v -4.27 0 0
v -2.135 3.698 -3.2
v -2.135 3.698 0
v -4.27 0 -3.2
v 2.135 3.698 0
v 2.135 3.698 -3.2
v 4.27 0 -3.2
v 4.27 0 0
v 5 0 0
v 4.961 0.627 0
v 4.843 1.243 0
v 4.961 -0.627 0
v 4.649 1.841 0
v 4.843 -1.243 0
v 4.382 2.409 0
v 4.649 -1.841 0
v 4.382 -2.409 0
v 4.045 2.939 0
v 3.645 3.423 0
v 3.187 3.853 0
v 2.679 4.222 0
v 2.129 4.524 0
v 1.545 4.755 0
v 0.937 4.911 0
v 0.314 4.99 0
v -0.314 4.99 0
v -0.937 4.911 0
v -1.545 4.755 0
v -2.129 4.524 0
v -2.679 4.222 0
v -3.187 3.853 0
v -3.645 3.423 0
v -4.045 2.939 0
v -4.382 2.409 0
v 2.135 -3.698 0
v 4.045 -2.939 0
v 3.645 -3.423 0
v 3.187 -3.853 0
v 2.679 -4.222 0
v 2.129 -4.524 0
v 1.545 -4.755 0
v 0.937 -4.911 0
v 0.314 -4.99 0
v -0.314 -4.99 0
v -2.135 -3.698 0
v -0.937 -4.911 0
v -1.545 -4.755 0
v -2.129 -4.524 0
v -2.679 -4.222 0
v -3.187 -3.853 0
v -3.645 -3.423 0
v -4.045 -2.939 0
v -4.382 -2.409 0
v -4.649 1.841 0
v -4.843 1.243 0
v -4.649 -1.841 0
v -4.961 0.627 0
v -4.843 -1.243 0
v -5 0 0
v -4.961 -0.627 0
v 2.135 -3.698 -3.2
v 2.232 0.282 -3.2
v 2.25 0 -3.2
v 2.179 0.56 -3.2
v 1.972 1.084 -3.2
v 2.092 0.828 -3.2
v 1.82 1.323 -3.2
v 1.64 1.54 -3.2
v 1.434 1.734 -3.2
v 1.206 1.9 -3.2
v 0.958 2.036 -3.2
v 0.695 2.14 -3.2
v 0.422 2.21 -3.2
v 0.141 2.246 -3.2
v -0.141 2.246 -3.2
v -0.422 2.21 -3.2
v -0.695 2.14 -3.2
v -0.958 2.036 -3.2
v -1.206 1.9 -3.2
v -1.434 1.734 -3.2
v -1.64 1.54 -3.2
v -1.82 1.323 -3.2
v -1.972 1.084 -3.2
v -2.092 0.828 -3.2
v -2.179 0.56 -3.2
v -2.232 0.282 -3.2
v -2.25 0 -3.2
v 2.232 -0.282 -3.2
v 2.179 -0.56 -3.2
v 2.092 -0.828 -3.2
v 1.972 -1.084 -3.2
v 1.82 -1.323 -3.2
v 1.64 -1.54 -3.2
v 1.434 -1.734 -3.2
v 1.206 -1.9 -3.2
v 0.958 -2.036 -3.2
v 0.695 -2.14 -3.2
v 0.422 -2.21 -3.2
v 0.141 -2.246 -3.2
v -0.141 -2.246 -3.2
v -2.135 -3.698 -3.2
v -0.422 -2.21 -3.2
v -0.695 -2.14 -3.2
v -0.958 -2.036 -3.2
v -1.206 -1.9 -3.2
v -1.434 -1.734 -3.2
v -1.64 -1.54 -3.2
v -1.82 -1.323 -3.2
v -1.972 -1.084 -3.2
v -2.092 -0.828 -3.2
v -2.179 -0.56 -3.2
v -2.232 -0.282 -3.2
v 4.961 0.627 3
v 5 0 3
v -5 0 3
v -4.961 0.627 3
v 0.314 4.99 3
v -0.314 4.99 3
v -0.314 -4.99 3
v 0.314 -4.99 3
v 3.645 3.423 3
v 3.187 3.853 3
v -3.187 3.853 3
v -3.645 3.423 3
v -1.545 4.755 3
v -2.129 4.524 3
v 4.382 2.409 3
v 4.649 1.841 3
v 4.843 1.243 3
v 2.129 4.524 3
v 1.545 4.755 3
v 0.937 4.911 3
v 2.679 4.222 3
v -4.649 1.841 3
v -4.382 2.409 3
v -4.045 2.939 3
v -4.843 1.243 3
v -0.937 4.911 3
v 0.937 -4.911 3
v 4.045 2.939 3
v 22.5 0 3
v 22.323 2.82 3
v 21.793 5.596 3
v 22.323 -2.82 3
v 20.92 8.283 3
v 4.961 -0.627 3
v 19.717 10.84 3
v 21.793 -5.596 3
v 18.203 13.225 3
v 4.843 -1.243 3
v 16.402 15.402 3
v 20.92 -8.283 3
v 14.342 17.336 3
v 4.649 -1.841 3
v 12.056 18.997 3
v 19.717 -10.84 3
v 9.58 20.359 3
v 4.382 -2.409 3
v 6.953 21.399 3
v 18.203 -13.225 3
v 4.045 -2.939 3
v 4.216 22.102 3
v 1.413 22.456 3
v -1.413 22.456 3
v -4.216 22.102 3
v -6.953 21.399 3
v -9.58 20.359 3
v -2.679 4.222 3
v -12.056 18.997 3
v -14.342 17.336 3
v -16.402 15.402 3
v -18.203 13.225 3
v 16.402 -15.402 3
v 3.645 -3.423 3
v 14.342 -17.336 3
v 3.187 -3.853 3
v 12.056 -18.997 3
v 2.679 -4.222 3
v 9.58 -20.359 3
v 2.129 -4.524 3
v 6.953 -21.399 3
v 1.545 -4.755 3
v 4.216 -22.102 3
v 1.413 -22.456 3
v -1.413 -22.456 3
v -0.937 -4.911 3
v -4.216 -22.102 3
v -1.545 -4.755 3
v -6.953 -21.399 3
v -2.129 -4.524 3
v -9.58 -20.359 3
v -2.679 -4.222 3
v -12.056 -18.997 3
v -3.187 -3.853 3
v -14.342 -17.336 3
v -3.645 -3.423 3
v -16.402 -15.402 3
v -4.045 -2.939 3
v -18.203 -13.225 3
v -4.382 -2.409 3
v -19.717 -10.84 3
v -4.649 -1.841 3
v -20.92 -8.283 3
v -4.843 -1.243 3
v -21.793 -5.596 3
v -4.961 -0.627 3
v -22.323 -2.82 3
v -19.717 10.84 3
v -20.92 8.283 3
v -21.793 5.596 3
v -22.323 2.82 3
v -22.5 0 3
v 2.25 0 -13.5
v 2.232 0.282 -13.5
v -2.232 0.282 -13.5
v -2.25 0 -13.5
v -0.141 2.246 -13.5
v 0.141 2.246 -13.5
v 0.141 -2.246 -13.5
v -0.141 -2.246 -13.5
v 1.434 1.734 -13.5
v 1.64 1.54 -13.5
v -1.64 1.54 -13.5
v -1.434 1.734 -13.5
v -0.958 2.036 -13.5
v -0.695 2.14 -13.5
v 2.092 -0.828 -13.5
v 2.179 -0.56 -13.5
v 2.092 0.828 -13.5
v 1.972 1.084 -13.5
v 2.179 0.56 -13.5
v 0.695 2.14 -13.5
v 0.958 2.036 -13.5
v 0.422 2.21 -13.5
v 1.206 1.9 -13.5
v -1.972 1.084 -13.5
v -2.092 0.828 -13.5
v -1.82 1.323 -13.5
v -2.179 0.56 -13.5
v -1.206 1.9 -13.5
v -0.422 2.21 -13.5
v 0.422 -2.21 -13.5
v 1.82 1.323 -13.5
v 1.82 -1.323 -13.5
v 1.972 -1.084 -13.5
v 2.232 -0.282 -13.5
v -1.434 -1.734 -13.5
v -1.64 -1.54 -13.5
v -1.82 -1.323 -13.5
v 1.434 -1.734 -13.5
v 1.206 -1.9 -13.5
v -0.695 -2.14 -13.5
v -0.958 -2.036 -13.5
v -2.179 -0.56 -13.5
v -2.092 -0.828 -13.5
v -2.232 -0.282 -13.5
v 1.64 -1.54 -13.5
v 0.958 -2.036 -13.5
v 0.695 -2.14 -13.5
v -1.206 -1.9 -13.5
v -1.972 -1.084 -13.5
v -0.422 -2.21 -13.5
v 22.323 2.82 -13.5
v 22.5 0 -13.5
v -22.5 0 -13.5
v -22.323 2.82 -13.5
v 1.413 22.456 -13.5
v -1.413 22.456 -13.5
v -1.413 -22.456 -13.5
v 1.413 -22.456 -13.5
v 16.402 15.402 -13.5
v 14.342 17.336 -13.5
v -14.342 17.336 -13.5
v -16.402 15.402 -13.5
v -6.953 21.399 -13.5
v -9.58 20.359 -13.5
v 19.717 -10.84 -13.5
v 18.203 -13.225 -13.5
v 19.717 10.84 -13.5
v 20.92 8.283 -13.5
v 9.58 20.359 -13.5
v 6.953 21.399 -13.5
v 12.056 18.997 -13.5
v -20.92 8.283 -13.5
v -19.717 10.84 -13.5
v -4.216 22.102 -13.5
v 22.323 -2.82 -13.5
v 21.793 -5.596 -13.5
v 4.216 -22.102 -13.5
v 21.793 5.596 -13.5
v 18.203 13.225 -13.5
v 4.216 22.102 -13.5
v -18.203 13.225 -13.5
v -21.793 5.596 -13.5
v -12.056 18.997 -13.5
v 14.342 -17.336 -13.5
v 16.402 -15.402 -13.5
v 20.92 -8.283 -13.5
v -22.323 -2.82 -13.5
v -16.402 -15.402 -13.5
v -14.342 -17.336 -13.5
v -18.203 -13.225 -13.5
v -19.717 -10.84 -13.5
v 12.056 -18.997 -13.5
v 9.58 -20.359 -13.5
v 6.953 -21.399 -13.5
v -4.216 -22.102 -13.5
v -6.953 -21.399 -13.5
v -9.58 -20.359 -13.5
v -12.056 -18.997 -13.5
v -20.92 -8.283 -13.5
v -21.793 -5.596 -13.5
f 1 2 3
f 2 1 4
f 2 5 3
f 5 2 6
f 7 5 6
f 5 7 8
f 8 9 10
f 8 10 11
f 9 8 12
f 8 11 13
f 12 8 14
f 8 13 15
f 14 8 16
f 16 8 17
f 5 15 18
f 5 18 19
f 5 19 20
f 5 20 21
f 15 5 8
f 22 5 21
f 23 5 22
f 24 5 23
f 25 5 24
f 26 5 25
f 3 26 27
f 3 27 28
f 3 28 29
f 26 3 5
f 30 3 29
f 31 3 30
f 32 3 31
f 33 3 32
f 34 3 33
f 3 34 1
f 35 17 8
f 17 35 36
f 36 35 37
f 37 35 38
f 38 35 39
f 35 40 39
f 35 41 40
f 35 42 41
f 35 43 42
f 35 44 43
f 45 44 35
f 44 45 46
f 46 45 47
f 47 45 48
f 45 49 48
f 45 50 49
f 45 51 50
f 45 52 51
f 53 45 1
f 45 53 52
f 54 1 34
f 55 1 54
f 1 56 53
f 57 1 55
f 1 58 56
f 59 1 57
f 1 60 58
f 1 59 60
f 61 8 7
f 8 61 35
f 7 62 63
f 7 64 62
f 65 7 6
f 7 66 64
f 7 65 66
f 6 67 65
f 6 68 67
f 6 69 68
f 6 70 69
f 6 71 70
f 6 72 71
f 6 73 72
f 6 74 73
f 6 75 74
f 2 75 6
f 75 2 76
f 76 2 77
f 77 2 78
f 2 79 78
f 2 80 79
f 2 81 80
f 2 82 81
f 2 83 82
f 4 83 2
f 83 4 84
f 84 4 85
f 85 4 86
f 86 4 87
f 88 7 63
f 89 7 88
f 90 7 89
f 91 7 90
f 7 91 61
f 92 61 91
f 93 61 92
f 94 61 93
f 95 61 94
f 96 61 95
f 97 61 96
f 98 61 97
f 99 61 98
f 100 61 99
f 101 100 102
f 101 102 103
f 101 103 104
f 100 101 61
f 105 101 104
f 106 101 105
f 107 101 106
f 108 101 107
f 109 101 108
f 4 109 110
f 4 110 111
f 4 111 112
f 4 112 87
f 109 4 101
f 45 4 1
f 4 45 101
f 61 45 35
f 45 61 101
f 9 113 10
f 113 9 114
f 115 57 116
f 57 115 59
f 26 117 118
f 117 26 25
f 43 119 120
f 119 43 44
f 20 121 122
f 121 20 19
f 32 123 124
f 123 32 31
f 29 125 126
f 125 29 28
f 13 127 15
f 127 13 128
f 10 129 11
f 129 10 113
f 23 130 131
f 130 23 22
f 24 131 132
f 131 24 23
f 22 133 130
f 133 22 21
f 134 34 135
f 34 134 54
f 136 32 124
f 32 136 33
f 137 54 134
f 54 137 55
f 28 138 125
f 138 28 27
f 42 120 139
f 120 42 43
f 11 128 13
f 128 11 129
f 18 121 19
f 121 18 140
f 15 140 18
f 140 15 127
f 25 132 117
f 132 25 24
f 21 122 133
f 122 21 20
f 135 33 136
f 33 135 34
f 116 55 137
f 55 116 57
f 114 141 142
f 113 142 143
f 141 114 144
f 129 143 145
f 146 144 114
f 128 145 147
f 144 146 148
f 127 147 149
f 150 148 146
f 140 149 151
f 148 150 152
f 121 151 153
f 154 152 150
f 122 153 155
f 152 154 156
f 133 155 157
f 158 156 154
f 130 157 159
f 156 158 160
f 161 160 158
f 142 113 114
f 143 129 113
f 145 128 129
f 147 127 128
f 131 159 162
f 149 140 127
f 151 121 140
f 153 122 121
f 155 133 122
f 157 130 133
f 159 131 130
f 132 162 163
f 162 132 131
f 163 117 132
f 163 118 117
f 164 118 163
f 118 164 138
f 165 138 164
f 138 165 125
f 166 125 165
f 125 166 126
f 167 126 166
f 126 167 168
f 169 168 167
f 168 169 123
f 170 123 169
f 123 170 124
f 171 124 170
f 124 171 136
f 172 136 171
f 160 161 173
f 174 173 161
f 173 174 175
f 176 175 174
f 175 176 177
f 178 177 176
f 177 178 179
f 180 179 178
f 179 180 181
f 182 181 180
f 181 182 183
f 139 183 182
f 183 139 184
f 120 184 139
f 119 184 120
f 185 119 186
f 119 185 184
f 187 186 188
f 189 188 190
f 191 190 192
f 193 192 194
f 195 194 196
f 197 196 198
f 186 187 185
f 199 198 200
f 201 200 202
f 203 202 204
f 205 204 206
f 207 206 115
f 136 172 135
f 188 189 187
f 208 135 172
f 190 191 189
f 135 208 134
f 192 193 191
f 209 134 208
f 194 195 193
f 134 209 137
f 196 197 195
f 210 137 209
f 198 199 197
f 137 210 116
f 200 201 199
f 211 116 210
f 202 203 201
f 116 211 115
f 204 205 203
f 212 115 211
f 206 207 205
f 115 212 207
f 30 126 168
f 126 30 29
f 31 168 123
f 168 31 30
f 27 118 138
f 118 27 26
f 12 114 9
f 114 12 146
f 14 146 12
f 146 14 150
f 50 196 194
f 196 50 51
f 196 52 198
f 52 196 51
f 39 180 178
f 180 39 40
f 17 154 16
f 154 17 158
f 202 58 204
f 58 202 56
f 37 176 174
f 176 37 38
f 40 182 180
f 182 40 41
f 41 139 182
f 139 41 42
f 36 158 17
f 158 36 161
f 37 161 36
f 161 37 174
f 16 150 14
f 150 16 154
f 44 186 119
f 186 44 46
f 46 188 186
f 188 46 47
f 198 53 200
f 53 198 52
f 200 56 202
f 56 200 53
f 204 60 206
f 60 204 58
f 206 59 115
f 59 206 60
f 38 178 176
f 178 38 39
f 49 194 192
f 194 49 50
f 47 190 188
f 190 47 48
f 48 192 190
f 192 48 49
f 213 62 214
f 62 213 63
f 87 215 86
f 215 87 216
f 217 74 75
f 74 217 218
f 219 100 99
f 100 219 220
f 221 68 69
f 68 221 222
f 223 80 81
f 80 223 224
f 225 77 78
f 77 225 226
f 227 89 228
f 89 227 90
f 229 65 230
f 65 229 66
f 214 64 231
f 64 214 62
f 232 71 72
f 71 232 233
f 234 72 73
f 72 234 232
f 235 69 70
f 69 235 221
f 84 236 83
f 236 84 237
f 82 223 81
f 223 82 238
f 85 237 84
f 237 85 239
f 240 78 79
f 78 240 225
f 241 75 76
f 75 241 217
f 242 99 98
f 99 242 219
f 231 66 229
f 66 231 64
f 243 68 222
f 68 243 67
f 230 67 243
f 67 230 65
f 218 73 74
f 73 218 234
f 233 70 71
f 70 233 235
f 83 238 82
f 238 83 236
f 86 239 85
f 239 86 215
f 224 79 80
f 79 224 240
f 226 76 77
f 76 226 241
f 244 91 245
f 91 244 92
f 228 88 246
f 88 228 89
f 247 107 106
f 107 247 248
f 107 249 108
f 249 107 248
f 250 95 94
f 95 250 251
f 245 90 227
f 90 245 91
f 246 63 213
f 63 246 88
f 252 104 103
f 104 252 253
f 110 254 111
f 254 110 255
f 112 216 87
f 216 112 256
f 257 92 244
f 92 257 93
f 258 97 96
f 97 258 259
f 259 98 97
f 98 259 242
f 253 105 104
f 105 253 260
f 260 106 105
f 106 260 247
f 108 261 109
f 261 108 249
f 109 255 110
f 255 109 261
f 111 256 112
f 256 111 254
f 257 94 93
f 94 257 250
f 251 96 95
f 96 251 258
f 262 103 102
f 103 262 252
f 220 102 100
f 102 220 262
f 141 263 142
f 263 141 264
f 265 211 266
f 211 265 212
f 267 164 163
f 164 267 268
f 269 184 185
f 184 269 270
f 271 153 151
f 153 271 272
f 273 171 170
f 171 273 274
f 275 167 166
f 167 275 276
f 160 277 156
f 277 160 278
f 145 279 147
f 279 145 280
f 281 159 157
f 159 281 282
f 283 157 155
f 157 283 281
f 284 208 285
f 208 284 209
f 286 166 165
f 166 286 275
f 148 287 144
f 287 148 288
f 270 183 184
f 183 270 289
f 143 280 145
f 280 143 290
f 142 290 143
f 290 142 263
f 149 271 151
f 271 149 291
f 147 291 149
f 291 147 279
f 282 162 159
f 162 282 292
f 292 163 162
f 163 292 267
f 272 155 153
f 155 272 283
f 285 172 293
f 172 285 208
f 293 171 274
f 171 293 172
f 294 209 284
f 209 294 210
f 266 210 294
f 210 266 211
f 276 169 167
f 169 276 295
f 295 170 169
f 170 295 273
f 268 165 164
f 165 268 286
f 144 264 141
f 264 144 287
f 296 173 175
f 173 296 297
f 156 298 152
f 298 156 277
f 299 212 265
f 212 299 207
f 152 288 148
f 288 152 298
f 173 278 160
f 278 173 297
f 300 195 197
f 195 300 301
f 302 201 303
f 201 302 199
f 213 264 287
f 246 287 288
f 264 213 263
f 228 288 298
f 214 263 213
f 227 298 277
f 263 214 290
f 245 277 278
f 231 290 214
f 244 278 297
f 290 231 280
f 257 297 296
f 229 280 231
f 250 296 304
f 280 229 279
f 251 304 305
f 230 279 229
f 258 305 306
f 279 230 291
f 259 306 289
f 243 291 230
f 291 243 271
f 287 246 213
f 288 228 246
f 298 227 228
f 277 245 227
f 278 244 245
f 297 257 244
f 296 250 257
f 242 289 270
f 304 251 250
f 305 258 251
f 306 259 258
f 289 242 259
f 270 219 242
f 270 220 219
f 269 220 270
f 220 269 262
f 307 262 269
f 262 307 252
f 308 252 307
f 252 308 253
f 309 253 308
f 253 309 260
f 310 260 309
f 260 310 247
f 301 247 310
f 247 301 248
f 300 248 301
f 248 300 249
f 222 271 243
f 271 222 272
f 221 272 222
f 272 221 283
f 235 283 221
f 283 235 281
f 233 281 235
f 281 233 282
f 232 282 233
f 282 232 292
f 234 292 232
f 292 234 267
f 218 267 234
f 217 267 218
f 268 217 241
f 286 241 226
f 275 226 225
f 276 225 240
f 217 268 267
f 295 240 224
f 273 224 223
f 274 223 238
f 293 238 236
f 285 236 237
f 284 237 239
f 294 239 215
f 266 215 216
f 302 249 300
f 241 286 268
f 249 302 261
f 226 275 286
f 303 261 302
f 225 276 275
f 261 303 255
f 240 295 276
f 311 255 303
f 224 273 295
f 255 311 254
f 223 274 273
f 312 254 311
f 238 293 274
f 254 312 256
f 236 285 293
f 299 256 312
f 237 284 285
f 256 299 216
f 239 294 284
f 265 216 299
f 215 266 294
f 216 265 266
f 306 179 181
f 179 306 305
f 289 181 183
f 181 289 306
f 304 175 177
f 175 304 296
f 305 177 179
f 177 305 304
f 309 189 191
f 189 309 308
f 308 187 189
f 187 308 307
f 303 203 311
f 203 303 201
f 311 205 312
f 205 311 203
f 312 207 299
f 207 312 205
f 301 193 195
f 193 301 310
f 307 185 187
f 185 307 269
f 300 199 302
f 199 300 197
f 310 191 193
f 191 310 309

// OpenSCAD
$fn = 50;


difference() {
	union() {
		translate(v = [0, 0, -13.5000000000]) {
			cylinder(h = 16.5000000000, r = 22.5000000000);
		}
	}
	union() {
		translate(v = [0, 0, 0]) {
			rotate(a = [0, 0, 0]) {
				difference() {
					union() {
						translate(v = [0, 0, -3.2000000000]) {
							linear_extrude(height = 3.2000000000) {
								polygon(points = [[4.2698000000, 0.0000000000], [2.1349000000, 3.6977552691], [-2.1349000000, 3.6977552691], [-4.2698000000, 0.0000000000], [-2.1349000000, -3.6977552691], [2.1349000000, -3.6977552691]]);
							}
						}
					}
					union();
				}
			}
		}
		#cylinder(h = 3, r = 5.0000000000);
		#translate(v = [0, 0, -100.0000000000]) {
			cylinder(h = 200, r = 2.2500000000);
		}
	}
}
